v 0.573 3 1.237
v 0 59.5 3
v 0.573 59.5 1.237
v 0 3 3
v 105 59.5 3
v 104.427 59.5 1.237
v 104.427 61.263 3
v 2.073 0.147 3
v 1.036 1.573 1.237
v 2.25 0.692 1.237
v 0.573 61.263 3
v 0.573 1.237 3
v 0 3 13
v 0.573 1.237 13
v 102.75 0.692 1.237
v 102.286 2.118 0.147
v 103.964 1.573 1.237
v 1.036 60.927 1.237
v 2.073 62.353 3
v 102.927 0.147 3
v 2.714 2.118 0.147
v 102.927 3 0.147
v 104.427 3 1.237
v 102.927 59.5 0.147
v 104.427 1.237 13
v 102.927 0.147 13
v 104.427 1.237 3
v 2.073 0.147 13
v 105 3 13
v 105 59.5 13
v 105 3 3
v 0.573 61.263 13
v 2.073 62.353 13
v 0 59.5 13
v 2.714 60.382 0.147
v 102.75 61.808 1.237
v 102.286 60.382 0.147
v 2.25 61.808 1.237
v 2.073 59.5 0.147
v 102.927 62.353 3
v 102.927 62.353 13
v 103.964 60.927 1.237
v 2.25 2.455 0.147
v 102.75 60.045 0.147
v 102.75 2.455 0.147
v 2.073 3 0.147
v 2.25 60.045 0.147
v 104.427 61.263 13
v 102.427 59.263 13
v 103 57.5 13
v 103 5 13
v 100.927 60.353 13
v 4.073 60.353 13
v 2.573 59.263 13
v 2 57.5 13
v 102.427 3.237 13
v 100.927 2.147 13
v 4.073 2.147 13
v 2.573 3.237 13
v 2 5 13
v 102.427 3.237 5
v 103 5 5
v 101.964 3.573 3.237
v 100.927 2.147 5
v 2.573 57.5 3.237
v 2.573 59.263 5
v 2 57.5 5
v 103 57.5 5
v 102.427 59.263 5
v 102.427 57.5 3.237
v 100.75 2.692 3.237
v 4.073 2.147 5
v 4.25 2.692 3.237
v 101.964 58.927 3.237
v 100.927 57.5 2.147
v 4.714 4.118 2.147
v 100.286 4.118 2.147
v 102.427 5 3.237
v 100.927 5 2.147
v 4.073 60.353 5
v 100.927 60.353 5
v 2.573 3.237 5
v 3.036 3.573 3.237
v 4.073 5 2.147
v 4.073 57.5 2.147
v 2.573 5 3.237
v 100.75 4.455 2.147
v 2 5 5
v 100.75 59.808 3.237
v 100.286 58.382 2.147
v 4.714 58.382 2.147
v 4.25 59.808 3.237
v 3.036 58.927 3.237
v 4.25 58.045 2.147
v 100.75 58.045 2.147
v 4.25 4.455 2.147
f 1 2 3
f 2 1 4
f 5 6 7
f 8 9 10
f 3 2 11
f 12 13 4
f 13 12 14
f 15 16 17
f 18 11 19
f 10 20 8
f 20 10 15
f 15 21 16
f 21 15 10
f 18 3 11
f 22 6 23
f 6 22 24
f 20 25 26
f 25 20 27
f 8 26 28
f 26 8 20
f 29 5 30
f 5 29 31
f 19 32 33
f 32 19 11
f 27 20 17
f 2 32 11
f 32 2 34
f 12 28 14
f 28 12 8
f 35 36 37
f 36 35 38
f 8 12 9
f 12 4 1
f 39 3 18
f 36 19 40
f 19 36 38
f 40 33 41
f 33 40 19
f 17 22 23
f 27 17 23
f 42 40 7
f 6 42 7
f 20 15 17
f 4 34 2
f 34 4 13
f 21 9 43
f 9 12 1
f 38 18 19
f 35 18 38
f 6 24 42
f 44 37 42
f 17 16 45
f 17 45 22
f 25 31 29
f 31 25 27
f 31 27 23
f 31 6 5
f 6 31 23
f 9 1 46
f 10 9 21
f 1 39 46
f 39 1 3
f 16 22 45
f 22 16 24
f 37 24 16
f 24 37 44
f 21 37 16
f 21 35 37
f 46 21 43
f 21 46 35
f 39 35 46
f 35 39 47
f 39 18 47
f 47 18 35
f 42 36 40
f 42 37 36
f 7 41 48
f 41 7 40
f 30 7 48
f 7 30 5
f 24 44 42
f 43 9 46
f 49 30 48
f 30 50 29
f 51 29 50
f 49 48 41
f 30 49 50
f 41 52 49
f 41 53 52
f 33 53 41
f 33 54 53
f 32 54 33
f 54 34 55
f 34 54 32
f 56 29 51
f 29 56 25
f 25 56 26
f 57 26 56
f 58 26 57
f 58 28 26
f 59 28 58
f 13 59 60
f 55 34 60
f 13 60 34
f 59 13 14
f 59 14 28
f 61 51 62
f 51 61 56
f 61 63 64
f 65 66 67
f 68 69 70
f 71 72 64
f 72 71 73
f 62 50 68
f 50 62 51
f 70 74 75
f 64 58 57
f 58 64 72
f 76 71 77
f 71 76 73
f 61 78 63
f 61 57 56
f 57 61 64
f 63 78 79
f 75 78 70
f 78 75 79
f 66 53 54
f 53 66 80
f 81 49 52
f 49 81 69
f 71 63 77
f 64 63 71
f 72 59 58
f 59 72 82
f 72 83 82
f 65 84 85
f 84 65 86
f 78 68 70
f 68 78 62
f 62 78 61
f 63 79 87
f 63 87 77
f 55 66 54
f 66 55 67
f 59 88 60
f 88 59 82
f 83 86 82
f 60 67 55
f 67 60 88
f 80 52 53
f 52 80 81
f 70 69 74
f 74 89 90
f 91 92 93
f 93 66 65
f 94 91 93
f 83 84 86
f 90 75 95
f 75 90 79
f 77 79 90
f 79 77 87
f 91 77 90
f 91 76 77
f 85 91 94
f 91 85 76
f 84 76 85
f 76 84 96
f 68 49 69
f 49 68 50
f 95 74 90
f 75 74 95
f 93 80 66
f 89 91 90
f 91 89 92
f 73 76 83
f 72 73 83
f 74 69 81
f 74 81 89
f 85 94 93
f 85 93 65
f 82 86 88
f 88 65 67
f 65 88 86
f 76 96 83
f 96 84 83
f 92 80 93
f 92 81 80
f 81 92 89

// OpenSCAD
echo(version=version());

// Settings
box_length = 105;
box_width = 62.5;
box_height = 13;
wall_thickness = 2;

rounding = 3;
bleed = 1;

// Derived attributes
r_box_length = box_length-rounding*2;
r_box_width = box_width-rounding*2;
r_box_height = box_height-rounding*2+rounding+bleed;

r_hollow_length = box_length-rounding*2-wall_thickness*2;
r_hollow_width = box_width-rounding*2-wall_thickness*2;
r_hollow_height = box_height-rounding*2+rounding+bleed;
r_hollow_offset = rounding+wall_thickness;

difference() {
  // Base tray
  minkowski() {
    translate([rounding, rounding, rounding]) {
      cube([r_box_length, r_box_width, r_box_height]);
    }
    sphere(rounding);
  }

  // Slice off top
  translate([-bleed,-bleed,box_height]) {
    cube([box_length+bleed*2, box_width+bleed*2, rounding+bleed]);
  }

  // Hollow out tray
  minkowski() {
    translate([r_hollow_offset, r_hollow_offset, r_hollow_offset]) {
      cube([r_hollow_length, r_hollow_width, r_hollow_height]);
    }
    sphere(rounding);
  }
}
